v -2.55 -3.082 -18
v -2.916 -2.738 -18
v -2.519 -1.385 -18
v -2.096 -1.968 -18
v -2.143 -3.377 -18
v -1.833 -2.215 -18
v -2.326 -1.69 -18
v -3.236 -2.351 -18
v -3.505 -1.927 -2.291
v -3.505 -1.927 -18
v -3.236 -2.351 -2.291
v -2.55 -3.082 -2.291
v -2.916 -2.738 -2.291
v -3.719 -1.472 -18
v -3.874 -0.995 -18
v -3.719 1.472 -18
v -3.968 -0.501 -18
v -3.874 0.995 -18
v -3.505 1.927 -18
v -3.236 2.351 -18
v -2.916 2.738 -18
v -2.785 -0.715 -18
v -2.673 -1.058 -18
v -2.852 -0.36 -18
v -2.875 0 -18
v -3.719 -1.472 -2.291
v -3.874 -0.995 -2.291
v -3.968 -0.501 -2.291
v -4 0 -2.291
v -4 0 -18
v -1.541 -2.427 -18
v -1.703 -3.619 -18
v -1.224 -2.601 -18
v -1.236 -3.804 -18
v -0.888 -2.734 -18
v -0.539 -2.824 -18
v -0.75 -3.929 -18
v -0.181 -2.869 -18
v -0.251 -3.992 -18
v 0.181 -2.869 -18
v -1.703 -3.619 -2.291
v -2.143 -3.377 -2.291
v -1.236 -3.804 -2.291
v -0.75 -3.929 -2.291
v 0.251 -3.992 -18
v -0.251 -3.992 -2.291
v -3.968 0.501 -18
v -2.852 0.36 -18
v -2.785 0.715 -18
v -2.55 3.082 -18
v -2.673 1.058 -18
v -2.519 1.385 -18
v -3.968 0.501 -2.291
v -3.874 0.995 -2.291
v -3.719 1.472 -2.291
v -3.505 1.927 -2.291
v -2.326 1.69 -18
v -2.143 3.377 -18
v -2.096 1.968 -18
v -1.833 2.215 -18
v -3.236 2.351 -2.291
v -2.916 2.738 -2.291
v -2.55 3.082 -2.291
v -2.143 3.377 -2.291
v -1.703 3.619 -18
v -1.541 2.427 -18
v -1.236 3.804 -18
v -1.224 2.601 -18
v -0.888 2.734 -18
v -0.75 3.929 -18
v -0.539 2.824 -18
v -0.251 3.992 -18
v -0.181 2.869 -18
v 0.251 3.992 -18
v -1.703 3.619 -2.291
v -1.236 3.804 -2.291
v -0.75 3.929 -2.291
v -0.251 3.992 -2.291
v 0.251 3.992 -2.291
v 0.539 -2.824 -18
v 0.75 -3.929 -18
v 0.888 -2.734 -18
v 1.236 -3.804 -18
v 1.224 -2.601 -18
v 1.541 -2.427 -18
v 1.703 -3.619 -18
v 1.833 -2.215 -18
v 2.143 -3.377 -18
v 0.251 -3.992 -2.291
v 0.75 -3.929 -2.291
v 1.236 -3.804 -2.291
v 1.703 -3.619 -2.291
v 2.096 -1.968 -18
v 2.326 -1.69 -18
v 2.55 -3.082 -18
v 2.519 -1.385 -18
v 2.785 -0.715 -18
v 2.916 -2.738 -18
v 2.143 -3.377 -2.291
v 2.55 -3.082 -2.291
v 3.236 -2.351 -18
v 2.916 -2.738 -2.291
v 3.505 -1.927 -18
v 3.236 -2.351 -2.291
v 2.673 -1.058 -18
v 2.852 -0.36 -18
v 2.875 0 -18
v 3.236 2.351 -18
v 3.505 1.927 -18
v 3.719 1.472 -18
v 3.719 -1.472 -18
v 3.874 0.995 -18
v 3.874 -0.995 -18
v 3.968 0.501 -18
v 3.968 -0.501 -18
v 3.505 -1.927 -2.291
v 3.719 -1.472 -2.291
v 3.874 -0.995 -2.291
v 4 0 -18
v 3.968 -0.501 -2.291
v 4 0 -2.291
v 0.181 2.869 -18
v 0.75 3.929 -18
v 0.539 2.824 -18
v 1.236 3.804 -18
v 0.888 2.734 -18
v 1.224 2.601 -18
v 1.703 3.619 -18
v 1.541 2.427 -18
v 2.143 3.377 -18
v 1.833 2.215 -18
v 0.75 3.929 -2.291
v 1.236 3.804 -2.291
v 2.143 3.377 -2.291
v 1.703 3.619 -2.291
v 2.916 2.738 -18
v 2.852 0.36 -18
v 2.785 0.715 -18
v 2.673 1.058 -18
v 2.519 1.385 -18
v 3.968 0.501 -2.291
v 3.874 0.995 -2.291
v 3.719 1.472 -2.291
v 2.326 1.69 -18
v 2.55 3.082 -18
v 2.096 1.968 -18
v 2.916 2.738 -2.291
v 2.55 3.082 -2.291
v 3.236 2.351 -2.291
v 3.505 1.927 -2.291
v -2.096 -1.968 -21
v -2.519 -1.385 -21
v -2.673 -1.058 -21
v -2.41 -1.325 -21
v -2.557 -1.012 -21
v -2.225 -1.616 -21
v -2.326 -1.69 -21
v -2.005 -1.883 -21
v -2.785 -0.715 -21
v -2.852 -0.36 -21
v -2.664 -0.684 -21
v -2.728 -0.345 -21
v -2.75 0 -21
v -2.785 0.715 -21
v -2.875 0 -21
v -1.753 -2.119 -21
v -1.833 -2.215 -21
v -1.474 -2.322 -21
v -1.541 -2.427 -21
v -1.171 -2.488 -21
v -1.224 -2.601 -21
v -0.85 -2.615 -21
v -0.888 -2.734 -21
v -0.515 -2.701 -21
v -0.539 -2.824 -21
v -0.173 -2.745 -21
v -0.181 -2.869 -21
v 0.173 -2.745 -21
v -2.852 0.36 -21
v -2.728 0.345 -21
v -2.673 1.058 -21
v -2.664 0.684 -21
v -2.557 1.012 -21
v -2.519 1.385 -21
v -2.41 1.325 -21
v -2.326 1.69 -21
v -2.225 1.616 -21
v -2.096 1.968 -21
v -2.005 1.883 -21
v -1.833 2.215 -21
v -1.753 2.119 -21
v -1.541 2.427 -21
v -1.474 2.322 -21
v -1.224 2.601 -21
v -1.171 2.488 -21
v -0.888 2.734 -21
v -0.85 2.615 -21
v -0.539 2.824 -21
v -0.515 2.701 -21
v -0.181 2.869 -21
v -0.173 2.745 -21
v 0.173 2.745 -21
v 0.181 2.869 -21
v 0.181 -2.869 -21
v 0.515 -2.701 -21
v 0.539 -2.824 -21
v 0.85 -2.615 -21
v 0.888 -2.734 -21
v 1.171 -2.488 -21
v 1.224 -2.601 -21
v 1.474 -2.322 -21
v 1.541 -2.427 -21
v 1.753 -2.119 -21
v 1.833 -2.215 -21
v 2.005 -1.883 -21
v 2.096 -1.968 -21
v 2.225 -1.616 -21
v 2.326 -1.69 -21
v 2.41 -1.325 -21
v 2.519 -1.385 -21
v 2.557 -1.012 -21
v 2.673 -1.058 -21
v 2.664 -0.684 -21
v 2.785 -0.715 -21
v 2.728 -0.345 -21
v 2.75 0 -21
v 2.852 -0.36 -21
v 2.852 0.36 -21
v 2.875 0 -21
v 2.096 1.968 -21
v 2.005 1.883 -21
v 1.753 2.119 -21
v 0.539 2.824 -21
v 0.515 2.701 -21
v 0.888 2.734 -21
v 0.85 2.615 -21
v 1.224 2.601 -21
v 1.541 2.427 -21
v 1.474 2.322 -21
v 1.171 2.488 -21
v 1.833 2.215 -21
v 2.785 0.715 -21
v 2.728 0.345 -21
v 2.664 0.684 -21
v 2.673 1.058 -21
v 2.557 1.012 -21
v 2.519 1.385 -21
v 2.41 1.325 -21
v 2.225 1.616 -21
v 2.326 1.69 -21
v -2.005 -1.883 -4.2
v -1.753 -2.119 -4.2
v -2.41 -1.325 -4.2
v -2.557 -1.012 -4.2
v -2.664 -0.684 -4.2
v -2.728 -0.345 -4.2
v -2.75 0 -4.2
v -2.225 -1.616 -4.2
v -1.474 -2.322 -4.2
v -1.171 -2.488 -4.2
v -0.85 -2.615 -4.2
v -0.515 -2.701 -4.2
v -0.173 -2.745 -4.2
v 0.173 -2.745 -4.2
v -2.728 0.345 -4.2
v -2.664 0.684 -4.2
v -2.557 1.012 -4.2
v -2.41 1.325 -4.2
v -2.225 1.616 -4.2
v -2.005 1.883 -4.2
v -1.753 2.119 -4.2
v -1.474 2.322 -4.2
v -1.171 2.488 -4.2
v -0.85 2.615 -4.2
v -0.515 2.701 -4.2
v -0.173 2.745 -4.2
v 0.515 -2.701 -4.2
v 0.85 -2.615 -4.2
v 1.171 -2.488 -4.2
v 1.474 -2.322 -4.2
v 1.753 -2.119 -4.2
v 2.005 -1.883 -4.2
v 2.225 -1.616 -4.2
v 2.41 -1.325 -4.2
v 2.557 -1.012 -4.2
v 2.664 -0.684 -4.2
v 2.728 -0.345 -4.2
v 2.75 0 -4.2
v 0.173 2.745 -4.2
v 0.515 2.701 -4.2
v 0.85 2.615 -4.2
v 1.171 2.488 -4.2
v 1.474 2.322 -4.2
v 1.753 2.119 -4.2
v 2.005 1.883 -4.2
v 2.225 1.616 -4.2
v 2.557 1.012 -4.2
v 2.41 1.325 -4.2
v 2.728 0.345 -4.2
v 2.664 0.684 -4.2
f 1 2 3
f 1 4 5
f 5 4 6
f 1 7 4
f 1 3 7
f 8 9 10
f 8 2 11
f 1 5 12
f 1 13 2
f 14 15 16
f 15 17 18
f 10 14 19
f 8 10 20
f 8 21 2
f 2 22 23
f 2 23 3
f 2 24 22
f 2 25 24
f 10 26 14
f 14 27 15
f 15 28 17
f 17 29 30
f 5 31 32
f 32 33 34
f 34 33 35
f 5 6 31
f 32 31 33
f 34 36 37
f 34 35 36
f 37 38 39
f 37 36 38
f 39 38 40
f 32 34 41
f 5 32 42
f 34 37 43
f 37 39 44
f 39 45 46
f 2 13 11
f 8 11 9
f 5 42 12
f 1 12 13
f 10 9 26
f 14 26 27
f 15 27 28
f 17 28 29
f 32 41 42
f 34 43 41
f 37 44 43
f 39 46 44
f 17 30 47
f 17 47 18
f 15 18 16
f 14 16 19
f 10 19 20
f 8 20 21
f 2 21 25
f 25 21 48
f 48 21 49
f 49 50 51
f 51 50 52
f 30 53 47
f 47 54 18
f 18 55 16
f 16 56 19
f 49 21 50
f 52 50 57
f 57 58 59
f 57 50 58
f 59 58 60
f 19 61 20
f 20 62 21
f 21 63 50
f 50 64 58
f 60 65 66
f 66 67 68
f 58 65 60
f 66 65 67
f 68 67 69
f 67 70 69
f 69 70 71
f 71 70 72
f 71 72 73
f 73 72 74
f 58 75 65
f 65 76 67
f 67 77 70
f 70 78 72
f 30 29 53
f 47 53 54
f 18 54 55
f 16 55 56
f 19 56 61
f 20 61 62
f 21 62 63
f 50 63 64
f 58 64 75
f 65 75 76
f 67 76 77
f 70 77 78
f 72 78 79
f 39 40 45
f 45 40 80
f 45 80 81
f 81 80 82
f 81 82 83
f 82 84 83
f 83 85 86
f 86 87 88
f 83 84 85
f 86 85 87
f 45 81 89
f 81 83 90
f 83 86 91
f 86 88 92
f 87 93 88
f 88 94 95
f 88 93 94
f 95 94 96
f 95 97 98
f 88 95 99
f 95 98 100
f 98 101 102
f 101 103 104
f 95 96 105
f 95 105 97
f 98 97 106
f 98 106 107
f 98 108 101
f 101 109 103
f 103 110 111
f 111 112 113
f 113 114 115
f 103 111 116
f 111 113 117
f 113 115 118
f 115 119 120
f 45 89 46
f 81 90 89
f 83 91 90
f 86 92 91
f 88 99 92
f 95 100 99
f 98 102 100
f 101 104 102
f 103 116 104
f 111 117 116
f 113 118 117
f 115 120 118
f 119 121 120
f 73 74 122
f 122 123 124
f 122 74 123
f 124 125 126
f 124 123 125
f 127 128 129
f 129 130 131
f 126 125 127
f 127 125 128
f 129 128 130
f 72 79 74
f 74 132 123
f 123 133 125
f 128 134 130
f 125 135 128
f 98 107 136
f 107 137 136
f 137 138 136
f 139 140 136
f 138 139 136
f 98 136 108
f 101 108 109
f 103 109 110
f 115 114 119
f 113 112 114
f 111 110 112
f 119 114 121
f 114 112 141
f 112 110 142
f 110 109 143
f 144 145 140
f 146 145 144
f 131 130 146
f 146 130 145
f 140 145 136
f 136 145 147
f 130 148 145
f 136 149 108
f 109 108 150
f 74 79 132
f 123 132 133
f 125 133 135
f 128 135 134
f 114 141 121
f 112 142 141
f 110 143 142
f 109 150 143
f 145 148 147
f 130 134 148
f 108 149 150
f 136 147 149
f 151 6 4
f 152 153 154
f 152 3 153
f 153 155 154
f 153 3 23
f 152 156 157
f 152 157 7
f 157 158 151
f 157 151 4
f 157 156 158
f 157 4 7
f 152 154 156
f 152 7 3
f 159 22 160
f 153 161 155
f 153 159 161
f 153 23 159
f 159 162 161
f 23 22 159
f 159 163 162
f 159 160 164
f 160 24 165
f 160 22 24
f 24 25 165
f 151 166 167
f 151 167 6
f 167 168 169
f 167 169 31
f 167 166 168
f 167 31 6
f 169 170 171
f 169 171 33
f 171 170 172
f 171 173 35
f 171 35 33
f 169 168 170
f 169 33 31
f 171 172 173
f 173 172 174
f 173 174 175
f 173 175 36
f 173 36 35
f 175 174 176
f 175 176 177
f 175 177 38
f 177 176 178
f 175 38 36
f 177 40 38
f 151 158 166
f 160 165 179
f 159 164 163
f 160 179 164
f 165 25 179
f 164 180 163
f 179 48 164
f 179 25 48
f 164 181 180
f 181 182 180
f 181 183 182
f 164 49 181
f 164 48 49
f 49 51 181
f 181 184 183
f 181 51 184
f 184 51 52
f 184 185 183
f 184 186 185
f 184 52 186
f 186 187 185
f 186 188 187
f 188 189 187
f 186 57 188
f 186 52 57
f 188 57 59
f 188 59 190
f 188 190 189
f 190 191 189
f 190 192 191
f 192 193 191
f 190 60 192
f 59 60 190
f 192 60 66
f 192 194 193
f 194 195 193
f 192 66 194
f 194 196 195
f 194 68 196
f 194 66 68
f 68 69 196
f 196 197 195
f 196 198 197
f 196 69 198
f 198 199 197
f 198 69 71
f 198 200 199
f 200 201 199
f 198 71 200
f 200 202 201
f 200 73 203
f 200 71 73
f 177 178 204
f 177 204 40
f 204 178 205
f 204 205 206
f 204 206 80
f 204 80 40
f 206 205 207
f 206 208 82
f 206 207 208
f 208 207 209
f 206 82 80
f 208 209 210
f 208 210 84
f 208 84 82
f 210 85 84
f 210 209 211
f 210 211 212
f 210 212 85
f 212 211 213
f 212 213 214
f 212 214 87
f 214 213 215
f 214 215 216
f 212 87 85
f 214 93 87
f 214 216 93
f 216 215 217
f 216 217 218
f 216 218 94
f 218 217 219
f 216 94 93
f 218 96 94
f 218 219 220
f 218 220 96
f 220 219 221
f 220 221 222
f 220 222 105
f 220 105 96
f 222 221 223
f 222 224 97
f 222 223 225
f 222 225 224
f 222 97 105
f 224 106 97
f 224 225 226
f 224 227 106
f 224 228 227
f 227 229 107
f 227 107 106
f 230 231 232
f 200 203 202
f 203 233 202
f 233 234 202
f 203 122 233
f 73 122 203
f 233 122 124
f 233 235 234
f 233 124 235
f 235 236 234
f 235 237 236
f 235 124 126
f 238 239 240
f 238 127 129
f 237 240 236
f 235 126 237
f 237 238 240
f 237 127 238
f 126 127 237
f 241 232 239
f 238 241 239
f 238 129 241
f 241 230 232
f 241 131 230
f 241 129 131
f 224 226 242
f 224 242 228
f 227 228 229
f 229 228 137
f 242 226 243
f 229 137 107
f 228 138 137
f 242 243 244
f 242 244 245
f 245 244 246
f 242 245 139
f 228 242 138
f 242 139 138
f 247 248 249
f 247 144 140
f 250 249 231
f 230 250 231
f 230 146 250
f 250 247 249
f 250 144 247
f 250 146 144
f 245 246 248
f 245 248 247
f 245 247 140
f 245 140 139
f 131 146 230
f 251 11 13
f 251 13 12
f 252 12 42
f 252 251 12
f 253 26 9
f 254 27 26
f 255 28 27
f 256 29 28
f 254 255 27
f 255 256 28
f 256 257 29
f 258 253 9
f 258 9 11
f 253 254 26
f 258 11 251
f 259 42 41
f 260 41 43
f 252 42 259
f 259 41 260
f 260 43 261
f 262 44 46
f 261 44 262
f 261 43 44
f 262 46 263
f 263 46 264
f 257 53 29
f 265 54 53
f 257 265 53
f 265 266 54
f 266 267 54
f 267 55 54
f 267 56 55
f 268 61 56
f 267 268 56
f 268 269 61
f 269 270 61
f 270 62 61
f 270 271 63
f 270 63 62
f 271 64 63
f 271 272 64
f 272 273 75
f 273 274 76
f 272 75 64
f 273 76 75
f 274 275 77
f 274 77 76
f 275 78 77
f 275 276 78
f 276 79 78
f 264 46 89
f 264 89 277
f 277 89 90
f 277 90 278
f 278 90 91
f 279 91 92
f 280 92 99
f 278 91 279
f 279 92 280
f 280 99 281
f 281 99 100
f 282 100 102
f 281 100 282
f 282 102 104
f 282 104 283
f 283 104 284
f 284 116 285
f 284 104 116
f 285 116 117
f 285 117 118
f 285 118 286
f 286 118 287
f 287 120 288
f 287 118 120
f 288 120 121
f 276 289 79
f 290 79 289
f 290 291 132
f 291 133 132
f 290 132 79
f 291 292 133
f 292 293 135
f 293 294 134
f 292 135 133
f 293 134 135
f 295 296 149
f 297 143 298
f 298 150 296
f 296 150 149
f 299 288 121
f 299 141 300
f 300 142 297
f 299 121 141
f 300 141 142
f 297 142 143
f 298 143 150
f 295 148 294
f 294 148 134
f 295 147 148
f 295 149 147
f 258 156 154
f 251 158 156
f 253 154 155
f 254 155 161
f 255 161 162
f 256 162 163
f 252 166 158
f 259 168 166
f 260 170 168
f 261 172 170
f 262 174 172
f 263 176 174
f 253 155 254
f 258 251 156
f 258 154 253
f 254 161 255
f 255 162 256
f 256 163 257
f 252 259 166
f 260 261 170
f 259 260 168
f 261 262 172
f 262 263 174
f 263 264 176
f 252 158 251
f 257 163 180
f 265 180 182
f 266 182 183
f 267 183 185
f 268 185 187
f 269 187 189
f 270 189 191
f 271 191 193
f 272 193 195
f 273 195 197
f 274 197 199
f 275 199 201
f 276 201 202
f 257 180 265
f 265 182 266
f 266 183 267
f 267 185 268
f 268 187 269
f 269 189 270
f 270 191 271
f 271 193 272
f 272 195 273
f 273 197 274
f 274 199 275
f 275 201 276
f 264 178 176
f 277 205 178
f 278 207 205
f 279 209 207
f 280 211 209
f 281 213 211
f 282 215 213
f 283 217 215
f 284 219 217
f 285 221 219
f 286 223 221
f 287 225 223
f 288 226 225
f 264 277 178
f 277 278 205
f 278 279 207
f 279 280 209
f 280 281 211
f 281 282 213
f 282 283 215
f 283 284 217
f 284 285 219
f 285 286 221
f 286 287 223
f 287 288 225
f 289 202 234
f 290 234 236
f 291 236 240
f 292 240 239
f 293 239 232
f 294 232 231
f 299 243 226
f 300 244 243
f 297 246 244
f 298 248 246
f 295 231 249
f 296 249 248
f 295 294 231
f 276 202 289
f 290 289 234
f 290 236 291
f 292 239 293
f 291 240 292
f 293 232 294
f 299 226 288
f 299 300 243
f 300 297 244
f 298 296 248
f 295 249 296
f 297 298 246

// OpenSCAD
$fn = 50;

difference() {
	union() {
		translate(v = [0, 0, -18.0]) {
			cylinder(h = 18, r = 4.0);
		}
		#translate(v = [0, 0, -21.0]) {
			cylinder(h = 21, r = 2.875);
		}
	}
	union() {
		translate(v = [0, 0, 0]) {
			rotate(a = [0, 0, 0]) {
				difference() {
					union() {
						translate(v = [0, 0, -21.0]) {
							cylinder(h = 21, r = 2.25);
						}
						translate(v = [0, 0, -4.2]) {
							cylinder(h = 4.2, r1 = 2.75, r2 = 5.5);
						}
						translate(v = [0, 0, -21.0]) {
							cylinder(h = 21, r = 2.75);
						}
						translate(v = [0, 0, -21.0]) {
							cylinder(h = 21, r = 2.25);
						}
					}
					union();
				}
			}
		}
	}
}
